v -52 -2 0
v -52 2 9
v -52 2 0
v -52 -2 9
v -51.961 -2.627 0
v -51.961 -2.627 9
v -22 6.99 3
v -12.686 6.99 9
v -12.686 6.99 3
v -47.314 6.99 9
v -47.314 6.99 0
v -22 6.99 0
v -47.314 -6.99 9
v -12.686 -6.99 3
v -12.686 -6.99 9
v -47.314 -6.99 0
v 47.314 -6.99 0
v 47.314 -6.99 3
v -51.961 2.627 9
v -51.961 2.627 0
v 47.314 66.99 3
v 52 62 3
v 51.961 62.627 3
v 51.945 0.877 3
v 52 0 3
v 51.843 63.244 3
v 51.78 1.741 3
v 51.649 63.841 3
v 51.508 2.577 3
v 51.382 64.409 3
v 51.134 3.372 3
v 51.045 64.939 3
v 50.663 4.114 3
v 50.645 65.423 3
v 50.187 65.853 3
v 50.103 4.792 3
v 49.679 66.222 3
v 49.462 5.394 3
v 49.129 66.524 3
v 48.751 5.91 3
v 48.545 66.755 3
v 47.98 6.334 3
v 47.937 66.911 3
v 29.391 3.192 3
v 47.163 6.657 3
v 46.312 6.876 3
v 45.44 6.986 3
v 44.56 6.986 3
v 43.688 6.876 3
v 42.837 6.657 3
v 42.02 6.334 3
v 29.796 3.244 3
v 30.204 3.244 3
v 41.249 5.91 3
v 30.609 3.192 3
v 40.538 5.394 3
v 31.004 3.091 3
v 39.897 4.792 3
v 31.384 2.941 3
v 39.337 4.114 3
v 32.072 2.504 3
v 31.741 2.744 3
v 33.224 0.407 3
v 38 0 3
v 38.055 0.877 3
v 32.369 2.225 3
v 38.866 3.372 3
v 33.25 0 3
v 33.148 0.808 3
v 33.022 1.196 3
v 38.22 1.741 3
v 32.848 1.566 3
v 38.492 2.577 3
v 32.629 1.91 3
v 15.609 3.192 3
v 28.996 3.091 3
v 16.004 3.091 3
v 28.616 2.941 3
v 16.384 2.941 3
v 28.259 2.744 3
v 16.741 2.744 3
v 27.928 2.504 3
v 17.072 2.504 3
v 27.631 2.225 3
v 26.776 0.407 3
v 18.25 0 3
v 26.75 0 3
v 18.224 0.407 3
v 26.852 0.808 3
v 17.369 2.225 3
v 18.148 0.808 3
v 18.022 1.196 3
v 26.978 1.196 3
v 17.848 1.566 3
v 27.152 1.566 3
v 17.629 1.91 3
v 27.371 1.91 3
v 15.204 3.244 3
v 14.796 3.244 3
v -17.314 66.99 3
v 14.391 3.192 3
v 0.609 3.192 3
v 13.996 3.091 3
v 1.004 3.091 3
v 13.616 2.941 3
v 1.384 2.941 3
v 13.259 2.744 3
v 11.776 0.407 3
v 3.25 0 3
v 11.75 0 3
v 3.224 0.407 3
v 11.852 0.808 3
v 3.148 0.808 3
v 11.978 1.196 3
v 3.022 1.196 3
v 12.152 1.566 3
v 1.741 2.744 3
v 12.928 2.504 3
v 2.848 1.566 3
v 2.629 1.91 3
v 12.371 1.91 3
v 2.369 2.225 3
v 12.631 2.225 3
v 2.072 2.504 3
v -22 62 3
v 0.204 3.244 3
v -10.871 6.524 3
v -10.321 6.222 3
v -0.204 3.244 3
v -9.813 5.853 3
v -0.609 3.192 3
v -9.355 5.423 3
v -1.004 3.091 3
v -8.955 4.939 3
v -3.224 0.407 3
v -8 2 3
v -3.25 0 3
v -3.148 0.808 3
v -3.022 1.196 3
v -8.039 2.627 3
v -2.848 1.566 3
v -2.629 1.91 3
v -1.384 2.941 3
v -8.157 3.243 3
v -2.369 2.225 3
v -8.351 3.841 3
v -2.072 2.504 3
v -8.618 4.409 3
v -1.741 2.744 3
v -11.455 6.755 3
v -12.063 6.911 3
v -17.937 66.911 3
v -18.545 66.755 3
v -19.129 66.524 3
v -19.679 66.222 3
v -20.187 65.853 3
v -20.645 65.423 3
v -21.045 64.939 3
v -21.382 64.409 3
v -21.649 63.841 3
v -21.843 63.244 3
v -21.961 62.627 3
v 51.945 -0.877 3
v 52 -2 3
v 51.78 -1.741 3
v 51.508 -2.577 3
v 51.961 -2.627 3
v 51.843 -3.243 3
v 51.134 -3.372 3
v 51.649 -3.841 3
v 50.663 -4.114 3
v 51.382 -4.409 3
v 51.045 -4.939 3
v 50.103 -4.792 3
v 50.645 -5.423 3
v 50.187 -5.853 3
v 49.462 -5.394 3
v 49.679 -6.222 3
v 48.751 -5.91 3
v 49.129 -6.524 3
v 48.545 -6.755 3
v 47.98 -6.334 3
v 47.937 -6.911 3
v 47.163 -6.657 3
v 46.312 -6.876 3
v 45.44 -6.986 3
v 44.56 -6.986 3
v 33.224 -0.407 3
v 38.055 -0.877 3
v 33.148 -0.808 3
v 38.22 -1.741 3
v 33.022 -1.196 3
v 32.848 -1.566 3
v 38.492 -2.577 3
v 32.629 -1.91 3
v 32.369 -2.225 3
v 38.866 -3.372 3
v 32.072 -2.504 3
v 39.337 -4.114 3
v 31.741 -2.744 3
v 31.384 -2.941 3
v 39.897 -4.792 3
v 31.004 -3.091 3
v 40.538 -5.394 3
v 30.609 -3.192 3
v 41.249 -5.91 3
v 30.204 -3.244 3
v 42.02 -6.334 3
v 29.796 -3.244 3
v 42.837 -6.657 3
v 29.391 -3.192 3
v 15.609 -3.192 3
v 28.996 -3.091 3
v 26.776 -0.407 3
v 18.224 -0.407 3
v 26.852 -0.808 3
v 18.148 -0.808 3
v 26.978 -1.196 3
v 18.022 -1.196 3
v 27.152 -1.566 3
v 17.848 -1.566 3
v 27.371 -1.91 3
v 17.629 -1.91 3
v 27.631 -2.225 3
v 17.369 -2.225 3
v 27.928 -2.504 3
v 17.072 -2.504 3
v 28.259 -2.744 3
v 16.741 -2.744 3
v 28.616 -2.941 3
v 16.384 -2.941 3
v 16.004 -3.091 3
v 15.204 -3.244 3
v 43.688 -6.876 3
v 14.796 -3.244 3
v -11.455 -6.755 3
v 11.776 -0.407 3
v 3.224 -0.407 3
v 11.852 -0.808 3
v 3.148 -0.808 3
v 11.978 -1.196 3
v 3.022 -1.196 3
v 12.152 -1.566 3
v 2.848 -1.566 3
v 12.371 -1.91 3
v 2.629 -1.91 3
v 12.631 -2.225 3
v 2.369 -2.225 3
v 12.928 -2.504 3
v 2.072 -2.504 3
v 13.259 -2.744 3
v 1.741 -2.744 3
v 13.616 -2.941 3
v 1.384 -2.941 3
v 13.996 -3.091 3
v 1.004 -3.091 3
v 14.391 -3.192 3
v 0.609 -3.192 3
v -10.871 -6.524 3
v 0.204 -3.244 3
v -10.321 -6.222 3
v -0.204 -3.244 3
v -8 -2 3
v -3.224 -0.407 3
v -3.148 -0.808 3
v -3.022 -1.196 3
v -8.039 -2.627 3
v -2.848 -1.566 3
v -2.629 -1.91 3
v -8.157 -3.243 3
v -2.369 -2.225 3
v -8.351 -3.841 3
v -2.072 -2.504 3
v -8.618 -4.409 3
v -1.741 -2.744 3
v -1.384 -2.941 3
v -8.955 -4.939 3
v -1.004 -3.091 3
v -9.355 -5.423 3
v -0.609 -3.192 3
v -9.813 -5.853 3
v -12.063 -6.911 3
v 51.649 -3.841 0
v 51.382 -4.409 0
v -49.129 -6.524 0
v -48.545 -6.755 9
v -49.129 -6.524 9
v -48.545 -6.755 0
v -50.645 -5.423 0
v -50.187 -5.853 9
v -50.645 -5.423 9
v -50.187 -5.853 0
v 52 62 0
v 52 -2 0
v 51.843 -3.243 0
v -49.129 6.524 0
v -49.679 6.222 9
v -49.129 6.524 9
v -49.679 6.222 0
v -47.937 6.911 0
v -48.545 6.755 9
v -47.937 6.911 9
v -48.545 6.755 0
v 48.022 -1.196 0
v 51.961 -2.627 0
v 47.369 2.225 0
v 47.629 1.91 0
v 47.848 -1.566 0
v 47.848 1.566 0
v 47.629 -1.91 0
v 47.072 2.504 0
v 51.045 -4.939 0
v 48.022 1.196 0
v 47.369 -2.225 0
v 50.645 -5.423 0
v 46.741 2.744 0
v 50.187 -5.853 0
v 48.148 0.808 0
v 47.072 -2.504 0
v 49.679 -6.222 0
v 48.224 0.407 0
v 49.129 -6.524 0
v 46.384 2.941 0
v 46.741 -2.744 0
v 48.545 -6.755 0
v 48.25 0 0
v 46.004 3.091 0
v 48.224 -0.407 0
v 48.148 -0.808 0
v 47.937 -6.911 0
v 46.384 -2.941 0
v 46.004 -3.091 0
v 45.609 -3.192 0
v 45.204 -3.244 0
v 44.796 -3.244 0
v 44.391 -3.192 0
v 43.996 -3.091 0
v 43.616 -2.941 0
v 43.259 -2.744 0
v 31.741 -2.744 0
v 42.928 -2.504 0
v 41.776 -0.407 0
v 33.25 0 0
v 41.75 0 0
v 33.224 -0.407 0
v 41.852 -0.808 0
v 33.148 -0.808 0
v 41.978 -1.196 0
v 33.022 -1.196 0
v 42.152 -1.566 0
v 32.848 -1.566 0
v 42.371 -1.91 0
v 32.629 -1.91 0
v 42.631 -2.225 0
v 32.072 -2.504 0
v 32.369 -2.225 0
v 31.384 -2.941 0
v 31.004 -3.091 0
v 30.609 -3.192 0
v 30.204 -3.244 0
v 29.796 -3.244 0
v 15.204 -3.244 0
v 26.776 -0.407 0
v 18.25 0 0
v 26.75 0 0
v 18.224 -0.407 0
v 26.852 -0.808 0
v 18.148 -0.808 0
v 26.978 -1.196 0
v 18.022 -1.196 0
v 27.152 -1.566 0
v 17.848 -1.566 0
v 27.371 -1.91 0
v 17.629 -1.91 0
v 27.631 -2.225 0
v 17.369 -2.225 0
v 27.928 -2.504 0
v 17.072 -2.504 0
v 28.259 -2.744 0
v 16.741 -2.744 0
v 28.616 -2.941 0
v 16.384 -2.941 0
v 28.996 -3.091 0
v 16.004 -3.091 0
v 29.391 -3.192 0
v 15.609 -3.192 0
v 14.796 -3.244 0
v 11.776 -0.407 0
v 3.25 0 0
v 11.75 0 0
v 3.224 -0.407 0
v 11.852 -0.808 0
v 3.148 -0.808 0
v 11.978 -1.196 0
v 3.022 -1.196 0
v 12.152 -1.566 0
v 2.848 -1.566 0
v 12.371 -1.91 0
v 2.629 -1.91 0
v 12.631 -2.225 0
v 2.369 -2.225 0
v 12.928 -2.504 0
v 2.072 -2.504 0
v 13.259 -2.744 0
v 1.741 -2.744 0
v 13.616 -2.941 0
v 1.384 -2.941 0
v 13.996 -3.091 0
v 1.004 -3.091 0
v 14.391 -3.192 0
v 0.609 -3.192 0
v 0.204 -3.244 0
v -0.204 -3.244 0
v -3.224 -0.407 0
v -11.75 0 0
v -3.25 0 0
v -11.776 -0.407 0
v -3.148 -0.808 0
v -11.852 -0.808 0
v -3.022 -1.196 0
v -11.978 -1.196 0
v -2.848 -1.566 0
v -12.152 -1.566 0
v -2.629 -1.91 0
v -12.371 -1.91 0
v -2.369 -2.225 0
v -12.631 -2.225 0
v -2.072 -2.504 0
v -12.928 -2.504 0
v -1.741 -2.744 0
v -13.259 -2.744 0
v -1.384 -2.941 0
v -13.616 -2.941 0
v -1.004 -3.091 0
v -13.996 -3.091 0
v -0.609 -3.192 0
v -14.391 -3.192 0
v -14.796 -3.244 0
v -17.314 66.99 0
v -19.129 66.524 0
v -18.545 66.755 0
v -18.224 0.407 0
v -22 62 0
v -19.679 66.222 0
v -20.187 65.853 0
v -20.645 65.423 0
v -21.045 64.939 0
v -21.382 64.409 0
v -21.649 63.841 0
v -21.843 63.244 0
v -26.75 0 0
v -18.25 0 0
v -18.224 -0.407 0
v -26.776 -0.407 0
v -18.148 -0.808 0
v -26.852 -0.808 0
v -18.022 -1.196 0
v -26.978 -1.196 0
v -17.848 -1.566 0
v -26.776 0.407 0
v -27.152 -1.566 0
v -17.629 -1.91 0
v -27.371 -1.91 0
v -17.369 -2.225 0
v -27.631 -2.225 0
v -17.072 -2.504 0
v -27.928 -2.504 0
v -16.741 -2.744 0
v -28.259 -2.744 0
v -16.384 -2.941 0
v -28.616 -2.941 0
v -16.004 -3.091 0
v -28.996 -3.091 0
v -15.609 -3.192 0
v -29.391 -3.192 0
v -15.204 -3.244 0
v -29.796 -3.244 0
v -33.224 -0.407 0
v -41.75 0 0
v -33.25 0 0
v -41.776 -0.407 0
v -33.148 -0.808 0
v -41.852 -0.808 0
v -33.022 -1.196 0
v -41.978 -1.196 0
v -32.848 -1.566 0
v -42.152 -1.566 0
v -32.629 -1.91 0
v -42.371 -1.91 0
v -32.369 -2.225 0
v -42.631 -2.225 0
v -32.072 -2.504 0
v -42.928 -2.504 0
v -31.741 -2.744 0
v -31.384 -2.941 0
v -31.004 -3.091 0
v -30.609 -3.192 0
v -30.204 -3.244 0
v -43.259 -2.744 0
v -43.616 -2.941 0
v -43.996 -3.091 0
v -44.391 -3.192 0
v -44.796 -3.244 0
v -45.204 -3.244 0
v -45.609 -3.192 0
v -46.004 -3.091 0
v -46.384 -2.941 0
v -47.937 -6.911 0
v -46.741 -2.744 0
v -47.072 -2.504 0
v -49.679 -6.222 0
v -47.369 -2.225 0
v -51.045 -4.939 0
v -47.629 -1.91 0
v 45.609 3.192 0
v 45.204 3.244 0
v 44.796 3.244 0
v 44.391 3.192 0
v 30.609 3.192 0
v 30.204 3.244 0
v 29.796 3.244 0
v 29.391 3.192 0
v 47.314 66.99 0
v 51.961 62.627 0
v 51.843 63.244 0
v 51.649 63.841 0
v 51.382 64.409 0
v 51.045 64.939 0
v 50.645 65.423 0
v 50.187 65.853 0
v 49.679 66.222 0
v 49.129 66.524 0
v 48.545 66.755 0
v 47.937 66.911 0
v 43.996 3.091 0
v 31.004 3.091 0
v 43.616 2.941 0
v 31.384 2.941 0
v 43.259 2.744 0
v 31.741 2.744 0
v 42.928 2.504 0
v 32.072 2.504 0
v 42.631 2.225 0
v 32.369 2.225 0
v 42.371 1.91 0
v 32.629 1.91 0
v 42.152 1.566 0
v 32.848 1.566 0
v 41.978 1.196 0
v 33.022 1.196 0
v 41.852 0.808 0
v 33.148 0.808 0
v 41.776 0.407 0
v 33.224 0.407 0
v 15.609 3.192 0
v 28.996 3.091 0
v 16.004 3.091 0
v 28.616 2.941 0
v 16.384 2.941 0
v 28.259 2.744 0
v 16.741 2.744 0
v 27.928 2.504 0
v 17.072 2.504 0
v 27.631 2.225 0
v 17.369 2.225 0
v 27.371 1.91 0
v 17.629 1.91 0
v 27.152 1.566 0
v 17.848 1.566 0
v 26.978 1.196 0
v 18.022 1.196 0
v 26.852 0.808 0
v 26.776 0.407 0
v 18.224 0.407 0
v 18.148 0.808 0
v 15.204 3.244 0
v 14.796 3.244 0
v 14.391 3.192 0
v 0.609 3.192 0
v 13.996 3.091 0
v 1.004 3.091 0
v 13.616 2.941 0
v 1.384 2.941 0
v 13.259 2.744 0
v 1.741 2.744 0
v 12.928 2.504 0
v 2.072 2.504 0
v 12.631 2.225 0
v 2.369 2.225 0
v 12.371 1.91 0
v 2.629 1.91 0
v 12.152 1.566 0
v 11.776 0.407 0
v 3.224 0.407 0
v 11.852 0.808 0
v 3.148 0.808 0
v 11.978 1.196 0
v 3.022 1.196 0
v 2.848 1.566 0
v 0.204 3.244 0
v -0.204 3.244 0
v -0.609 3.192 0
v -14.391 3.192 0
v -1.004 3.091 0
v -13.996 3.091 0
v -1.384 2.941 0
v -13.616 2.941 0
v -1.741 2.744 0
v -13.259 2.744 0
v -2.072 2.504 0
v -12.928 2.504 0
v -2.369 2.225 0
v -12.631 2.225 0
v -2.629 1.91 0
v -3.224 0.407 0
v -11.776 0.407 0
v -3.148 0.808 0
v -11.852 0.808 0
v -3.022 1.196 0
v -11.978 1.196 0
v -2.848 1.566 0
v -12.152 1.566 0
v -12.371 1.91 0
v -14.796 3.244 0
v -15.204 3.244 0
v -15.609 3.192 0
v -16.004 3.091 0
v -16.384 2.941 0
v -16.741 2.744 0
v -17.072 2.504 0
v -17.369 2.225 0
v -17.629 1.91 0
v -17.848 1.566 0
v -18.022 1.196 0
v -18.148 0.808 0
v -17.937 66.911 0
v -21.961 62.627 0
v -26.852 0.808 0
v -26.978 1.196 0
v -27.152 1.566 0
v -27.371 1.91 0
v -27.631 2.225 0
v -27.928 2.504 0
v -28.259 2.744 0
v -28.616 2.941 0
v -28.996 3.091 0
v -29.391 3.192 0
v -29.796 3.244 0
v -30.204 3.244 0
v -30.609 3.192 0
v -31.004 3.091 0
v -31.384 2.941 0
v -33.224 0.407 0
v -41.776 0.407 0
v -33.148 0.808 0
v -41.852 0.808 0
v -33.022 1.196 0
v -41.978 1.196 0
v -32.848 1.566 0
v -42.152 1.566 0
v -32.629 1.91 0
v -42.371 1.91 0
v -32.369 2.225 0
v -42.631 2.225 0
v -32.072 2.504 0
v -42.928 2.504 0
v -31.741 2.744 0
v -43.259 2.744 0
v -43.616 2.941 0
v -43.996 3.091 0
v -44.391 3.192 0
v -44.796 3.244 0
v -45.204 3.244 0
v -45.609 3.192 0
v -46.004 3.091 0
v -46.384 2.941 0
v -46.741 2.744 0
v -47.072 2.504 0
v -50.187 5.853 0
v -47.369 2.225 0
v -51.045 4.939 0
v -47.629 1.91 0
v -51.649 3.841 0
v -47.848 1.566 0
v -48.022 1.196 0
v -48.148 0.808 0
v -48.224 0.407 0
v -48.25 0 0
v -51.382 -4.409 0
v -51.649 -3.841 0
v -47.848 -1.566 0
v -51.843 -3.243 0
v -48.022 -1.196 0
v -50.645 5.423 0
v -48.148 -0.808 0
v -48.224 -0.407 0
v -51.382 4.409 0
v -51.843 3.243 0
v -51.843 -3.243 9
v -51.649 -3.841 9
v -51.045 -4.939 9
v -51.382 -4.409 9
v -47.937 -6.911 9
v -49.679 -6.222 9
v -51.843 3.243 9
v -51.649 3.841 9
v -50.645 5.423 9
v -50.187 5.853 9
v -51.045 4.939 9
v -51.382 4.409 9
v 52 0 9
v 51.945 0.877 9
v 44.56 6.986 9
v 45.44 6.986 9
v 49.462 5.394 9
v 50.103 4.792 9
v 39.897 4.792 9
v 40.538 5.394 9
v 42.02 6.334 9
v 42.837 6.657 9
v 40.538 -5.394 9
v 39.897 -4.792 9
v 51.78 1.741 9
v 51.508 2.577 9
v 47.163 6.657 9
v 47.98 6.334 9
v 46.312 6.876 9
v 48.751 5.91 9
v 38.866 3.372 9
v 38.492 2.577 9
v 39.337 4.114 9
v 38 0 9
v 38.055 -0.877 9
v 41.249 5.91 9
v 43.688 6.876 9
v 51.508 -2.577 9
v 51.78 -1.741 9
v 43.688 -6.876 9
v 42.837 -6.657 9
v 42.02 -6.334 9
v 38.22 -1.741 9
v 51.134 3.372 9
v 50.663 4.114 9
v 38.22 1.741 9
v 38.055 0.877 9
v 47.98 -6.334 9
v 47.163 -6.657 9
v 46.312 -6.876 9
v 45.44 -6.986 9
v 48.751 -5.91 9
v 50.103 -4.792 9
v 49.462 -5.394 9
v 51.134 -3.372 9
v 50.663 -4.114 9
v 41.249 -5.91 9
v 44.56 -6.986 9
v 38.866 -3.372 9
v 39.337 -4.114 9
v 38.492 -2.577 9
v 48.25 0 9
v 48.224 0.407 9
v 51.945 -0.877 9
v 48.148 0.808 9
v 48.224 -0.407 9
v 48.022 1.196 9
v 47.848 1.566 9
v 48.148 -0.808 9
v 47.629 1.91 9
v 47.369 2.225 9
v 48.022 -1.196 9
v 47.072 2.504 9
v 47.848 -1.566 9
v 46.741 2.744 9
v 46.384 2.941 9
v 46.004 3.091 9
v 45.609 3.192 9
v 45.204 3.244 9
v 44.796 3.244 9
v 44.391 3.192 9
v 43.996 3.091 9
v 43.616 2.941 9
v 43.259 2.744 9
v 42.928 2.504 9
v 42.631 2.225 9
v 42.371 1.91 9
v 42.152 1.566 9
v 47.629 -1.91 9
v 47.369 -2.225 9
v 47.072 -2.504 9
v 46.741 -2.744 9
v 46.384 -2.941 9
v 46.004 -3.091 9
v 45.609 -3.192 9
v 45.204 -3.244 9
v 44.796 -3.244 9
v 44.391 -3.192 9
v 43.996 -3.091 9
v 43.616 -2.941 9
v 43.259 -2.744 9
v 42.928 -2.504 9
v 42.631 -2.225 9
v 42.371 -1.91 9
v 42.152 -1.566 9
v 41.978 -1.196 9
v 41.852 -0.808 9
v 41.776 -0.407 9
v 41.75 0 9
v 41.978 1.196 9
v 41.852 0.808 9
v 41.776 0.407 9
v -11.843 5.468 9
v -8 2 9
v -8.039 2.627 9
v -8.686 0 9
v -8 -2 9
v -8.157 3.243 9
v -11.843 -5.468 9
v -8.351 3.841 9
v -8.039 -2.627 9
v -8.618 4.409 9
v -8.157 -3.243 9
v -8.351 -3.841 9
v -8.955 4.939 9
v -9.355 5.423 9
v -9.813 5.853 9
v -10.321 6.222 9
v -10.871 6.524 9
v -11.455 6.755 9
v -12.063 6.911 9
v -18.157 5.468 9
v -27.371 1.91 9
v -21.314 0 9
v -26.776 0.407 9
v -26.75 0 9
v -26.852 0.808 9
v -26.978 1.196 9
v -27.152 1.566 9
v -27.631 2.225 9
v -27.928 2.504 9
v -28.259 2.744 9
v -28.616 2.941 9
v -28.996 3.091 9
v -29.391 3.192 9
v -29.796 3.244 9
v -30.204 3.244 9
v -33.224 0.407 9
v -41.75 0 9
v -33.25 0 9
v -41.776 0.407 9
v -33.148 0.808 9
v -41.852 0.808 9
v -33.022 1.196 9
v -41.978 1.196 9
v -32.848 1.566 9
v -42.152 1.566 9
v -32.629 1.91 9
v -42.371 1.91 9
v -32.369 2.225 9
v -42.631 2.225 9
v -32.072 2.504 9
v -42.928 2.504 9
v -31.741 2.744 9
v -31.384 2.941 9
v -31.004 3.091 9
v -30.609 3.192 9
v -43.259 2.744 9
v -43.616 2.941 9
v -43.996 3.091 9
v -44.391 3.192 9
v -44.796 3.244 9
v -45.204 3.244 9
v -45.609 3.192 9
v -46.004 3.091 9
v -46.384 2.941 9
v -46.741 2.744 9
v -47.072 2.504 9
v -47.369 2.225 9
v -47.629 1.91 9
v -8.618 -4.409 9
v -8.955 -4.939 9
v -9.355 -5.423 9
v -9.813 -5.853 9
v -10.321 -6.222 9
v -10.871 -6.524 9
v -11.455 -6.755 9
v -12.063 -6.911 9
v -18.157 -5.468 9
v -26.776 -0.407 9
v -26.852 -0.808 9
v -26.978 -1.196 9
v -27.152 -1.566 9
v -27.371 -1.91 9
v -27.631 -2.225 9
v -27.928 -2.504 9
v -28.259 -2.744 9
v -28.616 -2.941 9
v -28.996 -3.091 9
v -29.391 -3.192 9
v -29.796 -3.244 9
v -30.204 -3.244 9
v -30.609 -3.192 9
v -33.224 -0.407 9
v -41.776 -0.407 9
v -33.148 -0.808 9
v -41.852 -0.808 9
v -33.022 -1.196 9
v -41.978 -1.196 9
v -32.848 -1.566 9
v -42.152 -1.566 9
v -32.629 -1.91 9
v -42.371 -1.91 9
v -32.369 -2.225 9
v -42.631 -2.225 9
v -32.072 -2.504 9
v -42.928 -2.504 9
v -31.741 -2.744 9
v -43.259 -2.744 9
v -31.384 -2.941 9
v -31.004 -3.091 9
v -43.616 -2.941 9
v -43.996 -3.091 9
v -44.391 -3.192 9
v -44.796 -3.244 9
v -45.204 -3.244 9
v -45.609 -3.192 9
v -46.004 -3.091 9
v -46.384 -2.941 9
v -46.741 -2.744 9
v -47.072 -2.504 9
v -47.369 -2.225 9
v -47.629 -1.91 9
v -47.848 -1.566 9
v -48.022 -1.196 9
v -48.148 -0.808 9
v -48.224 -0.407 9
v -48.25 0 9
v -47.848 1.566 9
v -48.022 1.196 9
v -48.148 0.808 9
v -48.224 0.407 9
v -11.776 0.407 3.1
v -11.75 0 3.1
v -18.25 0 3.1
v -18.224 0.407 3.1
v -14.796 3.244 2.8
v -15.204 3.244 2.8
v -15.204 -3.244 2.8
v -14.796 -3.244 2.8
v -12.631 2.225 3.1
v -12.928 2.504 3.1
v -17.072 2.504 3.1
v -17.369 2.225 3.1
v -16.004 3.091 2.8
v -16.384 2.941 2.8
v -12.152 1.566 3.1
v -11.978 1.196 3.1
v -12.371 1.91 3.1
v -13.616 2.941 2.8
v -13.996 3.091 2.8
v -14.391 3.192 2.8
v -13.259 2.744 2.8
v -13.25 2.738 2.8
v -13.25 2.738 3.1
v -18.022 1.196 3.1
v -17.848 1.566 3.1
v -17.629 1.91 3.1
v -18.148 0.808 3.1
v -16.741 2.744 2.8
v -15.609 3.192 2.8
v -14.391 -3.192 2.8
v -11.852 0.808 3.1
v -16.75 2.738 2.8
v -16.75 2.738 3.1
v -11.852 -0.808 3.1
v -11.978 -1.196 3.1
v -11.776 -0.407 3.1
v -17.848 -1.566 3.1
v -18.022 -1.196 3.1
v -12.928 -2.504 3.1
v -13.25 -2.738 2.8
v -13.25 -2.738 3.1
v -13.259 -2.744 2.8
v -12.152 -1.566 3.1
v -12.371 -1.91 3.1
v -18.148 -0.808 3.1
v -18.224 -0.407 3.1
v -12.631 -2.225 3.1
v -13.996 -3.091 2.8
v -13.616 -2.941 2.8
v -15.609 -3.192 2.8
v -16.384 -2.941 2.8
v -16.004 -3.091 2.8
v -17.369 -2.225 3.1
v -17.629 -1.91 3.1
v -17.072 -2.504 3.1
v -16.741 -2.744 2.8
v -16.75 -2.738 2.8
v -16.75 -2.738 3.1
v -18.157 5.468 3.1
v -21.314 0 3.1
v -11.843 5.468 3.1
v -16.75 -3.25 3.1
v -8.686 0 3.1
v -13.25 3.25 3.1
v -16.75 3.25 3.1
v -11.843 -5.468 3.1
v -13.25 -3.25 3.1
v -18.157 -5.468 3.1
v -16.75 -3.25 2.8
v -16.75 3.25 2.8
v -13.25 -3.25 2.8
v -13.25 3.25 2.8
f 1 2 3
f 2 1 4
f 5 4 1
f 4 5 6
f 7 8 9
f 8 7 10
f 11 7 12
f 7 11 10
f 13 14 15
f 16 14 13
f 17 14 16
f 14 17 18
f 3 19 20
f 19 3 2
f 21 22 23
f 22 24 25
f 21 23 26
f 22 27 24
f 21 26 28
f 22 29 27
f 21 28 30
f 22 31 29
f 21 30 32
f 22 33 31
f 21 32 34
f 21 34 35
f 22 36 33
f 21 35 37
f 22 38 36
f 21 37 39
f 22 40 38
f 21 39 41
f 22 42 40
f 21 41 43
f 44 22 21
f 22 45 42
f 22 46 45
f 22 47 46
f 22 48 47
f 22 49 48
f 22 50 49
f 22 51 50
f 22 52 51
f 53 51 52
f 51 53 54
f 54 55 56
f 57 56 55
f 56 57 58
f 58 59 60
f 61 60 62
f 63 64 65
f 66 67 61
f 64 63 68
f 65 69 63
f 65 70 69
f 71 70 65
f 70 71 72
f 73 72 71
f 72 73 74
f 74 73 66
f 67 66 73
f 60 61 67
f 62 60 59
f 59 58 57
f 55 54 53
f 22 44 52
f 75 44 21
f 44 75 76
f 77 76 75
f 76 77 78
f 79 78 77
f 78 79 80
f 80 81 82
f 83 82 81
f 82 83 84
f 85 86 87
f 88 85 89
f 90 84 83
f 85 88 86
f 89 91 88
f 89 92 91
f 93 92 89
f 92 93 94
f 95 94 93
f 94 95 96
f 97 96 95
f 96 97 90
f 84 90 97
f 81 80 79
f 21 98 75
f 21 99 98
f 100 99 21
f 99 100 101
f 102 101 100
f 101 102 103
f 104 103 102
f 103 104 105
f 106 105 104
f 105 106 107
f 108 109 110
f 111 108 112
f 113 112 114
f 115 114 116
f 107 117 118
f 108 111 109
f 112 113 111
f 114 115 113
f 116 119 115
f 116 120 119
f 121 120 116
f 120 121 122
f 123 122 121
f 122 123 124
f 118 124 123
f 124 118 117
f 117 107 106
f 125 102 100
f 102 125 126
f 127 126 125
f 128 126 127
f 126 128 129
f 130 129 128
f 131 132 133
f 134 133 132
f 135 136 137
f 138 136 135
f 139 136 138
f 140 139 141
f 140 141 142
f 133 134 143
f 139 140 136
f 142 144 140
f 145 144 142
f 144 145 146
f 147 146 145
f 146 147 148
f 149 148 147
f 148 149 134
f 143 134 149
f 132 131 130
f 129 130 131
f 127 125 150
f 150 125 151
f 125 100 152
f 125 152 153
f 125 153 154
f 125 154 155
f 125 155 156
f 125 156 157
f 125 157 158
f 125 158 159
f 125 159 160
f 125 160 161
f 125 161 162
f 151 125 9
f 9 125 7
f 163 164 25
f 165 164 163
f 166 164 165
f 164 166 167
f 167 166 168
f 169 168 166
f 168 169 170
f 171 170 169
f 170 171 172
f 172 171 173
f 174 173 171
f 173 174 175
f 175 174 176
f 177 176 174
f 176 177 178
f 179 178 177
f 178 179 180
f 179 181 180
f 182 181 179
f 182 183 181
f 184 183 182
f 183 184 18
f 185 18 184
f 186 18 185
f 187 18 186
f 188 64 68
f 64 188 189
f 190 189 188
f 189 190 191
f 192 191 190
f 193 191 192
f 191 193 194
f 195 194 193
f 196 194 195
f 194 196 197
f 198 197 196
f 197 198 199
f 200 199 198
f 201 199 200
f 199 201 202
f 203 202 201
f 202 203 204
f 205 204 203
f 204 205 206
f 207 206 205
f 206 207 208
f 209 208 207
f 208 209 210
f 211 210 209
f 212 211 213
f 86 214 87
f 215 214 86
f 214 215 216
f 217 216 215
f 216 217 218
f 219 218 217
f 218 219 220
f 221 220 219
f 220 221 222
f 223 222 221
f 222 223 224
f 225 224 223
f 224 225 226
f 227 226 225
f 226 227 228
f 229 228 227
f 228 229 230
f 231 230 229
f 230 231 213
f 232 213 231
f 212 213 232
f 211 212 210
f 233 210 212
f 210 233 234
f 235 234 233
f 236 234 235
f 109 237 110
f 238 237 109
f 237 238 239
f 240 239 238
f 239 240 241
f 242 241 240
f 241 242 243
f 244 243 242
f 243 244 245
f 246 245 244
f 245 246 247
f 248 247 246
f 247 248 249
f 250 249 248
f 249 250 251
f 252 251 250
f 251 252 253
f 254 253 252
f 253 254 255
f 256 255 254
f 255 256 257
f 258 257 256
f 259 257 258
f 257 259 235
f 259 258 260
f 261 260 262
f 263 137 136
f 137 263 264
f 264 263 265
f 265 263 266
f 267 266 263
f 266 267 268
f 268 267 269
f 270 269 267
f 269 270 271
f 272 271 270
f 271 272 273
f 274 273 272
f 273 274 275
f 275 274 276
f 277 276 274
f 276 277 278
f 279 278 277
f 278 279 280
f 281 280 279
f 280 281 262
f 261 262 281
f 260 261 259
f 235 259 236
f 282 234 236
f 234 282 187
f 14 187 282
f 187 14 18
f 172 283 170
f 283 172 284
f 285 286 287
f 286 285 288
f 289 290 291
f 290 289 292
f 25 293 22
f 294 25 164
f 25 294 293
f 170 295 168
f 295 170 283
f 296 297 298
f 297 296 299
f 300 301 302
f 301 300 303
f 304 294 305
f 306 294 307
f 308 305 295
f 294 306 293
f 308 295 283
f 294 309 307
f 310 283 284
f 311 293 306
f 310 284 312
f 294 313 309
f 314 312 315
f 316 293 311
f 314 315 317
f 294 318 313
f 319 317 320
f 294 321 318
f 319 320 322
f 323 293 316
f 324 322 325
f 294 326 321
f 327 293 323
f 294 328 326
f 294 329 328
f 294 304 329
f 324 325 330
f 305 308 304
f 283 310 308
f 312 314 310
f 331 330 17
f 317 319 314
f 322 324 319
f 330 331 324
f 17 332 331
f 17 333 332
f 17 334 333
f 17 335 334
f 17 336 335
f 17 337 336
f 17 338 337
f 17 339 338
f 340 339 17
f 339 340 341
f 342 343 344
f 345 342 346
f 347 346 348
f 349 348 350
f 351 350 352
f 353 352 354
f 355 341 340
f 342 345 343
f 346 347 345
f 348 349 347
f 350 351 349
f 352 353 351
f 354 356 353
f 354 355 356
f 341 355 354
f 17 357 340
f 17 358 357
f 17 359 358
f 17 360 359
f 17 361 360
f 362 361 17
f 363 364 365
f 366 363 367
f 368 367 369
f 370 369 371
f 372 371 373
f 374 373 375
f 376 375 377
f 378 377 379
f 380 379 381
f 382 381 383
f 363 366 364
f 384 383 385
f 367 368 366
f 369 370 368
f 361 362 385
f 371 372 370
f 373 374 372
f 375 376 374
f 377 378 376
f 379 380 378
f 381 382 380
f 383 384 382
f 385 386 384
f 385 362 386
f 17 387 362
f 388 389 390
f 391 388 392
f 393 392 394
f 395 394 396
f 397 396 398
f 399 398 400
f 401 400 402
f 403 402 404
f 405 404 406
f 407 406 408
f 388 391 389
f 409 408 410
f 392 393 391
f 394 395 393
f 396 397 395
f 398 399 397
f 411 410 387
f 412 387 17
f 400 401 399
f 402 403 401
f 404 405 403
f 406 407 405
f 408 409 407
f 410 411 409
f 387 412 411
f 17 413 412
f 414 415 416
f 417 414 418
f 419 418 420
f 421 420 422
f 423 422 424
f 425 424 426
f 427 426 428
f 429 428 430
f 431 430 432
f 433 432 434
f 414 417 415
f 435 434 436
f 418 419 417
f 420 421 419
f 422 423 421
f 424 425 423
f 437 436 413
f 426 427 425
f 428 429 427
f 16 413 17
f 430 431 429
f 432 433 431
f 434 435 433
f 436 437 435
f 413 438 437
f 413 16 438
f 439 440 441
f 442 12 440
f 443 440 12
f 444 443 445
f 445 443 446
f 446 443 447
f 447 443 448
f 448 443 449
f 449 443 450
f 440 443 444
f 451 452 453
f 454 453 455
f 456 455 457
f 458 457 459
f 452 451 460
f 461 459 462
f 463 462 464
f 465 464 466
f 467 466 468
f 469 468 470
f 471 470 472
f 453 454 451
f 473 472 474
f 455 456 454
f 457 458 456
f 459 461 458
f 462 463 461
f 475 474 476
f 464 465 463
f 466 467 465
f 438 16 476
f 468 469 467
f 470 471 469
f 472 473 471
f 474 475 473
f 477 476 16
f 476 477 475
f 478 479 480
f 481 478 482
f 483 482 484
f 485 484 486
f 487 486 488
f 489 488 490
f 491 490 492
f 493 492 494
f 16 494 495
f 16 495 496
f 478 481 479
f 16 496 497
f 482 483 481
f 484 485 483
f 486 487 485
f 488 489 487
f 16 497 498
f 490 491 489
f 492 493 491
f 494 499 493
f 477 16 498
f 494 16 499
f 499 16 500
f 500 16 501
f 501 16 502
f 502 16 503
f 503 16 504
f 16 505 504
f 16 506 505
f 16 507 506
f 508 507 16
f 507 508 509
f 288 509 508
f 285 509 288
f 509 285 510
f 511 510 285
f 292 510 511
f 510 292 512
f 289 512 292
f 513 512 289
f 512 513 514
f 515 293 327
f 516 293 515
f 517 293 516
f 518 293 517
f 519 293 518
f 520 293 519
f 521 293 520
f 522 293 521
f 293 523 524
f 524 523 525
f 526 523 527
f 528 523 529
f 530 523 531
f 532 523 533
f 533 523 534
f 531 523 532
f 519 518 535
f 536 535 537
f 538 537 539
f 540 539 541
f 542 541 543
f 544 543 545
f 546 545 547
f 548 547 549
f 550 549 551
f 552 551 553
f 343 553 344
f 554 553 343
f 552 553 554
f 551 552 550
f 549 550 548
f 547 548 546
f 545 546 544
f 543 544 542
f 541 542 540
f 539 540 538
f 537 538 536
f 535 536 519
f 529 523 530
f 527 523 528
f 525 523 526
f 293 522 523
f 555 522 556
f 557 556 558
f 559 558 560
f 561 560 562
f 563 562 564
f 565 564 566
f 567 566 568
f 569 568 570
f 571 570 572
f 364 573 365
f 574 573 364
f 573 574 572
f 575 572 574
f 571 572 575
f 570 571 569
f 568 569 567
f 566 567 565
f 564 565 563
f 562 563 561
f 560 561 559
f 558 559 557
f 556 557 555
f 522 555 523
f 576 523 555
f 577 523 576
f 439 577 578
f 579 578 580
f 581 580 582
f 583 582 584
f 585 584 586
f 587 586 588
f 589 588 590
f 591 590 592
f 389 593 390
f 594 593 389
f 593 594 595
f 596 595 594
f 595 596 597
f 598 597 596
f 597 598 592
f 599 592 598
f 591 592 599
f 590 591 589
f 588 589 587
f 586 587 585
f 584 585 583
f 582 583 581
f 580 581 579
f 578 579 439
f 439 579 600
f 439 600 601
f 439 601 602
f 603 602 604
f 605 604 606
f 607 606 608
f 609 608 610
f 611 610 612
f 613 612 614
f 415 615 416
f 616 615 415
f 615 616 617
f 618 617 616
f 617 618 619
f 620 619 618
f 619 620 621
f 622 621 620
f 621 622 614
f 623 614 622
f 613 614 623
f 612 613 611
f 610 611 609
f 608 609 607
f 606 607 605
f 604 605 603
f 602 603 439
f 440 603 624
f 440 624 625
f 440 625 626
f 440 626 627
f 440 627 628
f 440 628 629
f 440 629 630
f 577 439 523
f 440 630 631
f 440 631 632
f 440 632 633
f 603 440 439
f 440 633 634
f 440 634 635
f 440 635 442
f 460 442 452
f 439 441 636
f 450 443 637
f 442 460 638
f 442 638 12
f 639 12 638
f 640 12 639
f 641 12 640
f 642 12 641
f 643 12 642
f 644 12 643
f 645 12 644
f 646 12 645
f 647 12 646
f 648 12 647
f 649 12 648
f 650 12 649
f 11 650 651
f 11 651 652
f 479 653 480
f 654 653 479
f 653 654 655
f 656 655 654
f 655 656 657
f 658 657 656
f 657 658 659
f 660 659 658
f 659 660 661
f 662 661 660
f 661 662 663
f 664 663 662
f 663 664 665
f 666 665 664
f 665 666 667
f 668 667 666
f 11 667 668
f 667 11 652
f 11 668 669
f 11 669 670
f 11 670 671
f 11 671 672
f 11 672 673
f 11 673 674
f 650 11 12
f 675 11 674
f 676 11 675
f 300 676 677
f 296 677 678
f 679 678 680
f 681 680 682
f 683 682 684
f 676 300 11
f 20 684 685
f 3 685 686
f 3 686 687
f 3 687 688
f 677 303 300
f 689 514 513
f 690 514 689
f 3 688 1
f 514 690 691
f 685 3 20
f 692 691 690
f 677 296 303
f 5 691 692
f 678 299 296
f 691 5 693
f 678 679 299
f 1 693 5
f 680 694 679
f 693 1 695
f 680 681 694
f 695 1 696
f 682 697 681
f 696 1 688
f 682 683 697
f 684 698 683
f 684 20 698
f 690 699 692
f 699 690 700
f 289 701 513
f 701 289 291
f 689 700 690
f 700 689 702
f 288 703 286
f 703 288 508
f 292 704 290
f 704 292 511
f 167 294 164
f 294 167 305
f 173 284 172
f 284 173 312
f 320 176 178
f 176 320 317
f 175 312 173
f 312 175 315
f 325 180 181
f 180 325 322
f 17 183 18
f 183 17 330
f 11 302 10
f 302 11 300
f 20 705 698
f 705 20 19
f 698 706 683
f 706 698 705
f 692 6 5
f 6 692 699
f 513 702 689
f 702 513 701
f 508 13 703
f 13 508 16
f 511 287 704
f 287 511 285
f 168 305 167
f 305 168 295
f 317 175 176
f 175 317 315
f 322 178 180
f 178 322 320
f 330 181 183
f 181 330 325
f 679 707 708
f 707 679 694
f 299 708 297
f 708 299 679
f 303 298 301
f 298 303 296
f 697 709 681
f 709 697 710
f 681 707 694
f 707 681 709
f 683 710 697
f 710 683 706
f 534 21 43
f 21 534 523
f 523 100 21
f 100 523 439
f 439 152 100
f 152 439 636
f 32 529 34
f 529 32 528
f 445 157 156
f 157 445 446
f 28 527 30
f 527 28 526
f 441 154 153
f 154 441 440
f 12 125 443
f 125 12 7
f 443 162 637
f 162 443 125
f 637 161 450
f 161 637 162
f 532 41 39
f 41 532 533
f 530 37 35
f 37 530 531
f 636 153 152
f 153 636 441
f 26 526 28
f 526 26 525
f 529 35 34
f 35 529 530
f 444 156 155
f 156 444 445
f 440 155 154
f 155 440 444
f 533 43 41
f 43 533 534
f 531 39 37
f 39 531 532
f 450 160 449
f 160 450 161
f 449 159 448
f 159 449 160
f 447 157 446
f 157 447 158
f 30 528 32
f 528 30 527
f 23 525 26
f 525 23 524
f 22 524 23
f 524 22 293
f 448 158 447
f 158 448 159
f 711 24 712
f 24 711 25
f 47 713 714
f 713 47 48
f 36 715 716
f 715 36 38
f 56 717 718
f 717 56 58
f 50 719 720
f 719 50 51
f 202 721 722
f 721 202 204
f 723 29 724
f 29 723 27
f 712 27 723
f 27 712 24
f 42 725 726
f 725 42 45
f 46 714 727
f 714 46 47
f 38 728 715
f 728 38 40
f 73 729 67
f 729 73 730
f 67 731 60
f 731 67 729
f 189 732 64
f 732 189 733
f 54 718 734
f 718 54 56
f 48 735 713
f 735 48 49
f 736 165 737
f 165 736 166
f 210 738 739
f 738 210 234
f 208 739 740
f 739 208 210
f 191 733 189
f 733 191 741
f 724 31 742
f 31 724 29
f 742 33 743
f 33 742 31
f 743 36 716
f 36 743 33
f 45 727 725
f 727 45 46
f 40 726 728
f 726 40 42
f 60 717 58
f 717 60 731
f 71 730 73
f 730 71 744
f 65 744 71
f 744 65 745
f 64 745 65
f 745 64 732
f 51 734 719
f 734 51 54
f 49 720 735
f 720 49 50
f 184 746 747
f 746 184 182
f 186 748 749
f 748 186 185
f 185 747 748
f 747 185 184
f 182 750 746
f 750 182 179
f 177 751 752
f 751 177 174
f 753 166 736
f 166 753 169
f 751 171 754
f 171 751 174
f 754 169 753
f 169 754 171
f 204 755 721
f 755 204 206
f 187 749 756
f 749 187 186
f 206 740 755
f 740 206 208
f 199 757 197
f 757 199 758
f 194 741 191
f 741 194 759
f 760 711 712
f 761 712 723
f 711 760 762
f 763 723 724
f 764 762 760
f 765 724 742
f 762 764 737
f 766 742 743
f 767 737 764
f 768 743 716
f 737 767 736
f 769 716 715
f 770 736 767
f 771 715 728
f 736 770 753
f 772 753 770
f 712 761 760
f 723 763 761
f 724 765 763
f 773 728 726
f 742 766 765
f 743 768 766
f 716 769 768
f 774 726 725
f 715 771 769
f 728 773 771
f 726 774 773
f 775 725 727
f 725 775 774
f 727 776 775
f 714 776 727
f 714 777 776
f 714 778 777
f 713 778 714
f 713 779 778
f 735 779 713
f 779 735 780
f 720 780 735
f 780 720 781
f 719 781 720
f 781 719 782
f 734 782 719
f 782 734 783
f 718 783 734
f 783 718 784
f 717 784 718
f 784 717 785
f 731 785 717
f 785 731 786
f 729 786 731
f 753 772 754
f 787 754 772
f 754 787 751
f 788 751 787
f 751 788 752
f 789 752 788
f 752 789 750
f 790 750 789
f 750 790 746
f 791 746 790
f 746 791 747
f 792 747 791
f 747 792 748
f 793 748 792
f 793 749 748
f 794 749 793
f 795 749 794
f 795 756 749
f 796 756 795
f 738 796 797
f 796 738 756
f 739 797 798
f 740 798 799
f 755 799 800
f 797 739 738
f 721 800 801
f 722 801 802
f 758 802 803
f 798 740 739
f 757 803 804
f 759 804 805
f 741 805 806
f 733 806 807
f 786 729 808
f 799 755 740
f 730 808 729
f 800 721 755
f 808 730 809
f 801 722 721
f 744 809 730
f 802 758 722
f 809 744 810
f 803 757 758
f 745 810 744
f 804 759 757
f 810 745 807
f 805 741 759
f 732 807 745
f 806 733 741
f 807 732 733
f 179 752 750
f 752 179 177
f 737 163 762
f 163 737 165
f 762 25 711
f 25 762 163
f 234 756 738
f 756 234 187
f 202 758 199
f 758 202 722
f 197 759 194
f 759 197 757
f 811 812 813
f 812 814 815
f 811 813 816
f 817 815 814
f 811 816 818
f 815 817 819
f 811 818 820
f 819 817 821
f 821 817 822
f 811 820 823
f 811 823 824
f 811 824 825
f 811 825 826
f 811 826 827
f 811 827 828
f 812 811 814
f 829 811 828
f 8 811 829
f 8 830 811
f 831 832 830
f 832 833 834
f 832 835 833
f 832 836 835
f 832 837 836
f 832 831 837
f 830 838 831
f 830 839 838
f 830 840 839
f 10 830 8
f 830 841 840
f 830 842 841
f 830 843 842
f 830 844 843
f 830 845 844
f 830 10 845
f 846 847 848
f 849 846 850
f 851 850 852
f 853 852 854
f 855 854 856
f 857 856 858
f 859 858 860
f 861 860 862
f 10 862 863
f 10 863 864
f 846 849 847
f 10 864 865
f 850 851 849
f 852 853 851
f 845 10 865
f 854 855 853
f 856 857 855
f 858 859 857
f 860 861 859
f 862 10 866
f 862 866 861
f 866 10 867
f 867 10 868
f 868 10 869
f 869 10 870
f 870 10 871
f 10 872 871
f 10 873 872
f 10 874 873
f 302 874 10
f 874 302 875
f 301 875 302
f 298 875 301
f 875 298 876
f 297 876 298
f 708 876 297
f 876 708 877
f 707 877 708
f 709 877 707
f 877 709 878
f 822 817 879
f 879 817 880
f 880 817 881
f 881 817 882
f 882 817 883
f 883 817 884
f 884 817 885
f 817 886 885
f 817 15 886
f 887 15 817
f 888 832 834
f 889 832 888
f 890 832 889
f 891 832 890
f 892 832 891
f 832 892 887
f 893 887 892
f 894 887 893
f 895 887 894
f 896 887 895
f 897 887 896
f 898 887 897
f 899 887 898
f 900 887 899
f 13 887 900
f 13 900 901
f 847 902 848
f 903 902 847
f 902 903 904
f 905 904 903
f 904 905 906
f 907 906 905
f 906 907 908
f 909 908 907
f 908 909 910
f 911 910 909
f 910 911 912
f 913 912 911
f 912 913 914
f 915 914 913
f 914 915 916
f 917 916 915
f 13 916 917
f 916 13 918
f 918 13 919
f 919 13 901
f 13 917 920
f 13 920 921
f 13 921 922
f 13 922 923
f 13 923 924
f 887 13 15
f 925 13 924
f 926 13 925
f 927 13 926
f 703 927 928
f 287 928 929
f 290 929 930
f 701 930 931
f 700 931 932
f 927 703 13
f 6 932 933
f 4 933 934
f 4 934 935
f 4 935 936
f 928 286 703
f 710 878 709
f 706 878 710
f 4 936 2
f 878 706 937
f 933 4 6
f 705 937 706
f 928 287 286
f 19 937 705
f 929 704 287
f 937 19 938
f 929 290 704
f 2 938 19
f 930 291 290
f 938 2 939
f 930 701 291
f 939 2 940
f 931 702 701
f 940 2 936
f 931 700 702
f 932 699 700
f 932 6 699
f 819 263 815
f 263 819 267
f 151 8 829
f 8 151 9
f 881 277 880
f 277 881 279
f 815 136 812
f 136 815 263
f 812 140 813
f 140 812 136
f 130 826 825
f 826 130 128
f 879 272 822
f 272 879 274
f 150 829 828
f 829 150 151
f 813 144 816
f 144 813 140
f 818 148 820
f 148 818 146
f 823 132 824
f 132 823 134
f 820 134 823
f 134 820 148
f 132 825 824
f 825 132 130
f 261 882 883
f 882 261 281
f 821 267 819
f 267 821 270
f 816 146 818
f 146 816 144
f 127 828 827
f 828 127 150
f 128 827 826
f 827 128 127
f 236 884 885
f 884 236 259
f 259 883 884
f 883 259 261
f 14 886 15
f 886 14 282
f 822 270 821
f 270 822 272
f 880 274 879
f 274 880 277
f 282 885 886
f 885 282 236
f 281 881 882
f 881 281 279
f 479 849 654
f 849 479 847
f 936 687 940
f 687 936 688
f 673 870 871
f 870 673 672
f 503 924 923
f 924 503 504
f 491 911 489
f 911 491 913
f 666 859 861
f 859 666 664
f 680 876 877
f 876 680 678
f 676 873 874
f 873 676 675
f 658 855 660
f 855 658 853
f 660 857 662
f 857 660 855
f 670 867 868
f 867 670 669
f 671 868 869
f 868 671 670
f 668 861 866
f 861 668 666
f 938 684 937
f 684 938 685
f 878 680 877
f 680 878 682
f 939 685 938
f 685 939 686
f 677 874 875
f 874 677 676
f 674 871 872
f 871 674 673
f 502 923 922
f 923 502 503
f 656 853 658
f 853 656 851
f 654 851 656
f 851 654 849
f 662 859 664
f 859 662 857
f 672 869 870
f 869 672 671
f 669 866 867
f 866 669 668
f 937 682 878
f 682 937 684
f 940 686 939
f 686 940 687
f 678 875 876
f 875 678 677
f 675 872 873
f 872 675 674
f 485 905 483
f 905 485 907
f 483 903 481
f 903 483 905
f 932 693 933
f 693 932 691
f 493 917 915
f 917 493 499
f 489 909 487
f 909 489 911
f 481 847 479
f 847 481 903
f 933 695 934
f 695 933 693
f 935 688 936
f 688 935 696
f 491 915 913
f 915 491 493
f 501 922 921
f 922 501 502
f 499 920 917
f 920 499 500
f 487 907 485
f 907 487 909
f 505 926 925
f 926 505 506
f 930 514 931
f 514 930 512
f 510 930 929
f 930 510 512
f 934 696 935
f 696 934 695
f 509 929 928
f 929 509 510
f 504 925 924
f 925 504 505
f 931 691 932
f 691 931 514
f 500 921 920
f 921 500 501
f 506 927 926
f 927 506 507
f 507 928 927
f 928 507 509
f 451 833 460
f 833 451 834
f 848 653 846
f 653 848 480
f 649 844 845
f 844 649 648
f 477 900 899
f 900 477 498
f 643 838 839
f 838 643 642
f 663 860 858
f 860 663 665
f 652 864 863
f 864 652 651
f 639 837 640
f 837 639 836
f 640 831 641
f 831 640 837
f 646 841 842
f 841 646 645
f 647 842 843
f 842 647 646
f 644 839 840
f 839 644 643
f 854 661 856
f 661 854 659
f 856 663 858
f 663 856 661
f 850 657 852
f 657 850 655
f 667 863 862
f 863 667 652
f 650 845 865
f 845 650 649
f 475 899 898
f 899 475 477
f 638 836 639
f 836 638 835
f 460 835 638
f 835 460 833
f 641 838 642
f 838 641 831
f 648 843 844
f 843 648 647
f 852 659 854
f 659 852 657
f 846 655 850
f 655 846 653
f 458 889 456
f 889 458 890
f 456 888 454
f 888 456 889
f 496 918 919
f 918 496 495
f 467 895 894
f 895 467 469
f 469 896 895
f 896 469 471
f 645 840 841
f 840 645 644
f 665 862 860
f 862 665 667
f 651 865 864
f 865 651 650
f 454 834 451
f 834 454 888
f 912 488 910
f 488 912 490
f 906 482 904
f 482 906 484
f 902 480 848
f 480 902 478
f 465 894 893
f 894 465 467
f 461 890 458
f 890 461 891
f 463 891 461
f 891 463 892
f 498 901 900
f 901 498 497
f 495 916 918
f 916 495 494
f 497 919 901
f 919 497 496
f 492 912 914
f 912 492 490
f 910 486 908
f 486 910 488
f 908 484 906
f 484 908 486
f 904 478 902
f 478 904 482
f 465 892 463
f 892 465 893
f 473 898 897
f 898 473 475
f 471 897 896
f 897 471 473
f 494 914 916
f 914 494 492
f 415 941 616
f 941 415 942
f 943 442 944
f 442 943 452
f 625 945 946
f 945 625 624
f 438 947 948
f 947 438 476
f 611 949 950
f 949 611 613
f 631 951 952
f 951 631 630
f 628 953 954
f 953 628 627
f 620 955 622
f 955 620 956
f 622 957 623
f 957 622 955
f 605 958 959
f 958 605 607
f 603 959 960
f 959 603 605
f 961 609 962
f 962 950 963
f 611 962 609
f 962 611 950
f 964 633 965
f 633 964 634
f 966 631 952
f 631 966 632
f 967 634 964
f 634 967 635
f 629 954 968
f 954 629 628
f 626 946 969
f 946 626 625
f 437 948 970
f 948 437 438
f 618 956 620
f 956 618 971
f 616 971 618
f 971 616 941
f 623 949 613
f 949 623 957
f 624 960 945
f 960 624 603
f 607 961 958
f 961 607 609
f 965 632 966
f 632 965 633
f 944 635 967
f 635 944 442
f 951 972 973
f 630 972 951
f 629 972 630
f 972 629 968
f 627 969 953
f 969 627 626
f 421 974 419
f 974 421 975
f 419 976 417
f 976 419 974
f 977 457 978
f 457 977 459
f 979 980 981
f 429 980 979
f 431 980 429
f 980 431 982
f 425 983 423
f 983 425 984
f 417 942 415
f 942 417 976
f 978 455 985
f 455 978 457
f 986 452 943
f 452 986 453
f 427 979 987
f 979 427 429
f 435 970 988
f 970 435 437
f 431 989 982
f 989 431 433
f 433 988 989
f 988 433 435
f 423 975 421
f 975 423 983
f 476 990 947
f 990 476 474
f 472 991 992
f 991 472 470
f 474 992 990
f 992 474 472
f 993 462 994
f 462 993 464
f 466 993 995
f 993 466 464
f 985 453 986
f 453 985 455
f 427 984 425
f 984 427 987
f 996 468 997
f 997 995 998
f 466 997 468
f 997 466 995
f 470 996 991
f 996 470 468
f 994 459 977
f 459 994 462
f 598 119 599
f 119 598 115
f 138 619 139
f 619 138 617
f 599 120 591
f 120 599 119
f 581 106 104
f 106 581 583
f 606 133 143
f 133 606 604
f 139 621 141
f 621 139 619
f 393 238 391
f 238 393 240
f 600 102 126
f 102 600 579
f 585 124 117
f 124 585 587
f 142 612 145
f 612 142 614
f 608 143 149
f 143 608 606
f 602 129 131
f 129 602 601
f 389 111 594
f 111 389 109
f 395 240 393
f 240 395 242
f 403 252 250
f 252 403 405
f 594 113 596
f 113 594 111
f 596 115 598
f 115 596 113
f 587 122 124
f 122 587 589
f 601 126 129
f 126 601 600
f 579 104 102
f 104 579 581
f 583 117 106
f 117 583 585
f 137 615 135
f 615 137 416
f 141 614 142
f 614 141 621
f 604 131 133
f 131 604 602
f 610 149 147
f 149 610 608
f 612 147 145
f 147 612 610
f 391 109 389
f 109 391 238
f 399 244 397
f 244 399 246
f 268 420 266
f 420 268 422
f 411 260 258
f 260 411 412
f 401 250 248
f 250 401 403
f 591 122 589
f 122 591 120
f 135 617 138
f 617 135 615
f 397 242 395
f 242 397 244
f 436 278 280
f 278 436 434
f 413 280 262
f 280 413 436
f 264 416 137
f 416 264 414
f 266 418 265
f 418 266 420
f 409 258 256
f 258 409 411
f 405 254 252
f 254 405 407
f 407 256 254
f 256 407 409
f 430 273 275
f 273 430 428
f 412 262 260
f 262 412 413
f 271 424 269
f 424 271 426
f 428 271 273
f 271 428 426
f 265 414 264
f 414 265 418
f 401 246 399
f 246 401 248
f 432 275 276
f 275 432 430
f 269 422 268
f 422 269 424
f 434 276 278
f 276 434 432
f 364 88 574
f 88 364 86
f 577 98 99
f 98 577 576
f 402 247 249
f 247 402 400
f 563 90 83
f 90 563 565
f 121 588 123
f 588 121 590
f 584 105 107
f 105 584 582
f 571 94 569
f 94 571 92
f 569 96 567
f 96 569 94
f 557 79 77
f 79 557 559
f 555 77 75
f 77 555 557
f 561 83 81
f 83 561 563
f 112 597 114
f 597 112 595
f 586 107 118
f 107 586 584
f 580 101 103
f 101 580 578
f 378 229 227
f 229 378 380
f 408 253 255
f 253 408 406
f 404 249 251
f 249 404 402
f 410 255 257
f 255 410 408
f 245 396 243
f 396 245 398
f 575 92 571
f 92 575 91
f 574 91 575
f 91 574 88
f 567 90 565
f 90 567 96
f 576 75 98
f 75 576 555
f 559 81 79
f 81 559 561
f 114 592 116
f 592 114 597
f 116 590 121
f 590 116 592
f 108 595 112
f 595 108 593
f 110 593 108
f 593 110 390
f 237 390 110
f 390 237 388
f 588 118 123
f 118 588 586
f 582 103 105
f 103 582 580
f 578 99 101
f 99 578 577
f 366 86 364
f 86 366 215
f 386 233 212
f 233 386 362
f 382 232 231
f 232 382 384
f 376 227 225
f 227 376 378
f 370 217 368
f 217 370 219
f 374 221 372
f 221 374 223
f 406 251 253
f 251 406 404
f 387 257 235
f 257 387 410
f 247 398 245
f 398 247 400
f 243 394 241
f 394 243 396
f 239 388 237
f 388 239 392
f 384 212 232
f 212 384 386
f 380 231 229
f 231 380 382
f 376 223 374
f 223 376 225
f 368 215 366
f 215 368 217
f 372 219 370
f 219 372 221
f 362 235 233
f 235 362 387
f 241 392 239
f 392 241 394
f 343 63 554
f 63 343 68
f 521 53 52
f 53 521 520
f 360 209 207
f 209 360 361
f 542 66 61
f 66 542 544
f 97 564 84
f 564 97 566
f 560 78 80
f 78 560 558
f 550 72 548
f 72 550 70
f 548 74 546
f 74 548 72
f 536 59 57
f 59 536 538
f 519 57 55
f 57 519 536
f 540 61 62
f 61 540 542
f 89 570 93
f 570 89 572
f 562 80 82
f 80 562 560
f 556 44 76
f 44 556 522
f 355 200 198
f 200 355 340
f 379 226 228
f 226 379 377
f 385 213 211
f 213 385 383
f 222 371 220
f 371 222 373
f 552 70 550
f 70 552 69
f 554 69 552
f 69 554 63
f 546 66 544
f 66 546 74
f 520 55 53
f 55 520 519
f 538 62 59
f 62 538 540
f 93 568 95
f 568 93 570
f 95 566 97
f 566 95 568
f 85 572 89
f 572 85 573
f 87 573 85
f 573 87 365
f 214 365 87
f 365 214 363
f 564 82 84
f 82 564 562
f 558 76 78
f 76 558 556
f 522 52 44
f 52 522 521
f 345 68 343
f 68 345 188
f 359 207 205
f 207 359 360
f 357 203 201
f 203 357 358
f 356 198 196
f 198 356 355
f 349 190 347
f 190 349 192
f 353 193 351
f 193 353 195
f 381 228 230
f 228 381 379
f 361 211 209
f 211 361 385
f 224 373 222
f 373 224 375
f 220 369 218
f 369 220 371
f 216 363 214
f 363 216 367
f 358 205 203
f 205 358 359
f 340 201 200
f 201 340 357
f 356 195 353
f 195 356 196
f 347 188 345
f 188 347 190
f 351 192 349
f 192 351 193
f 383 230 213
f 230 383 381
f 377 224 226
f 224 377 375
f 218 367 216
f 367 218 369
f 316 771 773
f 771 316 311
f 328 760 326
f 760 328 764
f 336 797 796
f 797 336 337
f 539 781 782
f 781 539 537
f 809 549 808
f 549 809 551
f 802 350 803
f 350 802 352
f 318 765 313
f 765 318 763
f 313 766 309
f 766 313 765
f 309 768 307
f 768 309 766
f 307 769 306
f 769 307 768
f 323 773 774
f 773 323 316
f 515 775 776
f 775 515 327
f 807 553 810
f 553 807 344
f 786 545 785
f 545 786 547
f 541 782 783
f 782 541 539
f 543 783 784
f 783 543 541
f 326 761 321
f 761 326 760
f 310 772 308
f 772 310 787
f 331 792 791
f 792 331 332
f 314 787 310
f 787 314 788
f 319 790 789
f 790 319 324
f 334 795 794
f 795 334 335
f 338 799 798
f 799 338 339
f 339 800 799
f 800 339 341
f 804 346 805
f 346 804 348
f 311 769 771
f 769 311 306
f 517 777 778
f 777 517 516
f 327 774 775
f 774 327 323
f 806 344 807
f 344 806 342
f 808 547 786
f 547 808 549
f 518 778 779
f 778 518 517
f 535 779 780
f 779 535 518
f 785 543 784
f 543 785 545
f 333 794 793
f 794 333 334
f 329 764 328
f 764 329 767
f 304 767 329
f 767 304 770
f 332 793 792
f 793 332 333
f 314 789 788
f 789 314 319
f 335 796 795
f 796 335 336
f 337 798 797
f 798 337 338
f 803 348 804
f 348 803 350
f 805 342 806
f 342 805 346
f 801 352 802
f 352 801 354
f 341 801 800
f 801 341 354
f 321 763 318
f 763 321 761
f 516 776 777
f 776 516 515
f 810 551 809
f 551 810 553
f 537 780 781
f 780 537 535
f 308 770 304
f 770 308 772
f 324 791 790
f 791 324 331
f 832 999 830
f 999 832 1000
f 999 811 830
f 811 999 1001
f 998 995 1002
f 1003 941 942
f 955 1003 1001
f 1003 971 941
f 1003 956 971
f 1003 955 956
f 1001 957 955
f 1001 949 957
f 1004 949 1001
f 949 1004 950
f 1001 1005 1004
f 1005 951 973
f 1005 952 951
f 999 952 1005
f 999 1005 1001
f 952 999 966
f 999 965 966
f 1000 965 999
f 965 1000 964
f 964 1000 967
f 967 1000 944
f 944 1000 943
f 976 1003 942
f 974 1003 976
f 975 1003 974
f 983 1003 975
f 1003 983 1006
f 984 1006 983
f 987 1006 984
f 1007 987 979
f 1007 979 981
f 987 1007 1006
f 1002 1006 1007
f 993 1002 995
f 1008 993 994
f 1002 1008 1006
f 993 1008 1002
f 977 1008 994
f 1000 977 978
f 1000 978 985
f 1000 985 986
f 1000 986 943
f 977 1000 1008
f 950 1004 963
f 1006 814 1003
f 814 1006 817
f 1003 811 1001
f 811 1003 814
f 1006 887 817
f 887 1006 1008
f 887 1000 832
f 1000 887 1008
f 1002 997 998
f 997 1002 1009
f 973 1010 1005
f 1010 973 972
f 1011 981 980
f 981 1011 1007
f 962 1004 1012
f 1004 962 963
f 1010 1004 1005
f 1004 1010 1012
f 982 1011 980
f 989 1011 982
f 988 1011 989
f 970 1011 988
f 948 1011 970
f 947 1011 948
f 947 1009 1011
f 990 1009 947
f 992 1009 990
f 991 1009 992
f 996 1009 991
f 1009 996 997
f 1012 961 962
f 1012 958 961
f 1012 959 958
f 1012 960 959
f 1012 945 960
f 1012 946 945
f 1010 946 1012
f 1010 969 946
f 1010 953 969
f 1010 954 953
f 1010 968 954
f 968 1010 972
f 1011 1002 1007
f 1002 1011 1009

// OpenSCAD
$fn = 50;


difference() {
	union() {
		translate(v = [0, 0, 0]) {
			rotate(a = [0, 0, 0]) {
				hull() {
					translate(v = [-47.0000000000, 2.0000000000, 0]) {
						rotate(a = [0, 0, 0]) {
							translate(v = [0, 0, 0]) {
								rotate(a = [0, 0, 0]) {
									cylinder(h = 3, r = 5);
								}
							}
						}
					}
					translate(v = [47.0000000000, 2.0000000000, 0]) {
						rotate(a = [0, 0, 0]) {
							translate(v = [0, 0, 0]) {
								rotate(a = [0, 0, 0]) {
									cylinder(h = 3, r = 5);
								}
							}
						}
					}
					translate(v = [-47.0000000000, -2.0000000000, 0]) {
						rotate(a = [0, 0, 0]) {
							translate(v = [0, 0, 0]) {
								rotate(a = [0, 0, 0]) {
									cylinder(h = 3, r = 5);
								}
							}
						}
					}
					translate(v = [47.0000000000, -2.0000000000, 0]) {
						rotate(a = [0, 0, 0]) {
							translate(v = [0, 0, 0]) {
								rotate(a = [0, 0, 0]) {
									cylinder(h = 3, r = 5);
								}
							}
						}
					}
				}
			}
		}
		translate(v = [15, 30, 0]) {
			rotate(a = [0, 0, 0]) {
				hull() {
					translate(v = [-32.0000000000, 32.0000000000, 0]) {
						rotate(a = [0, 0, 0]) {
							translate(v = [0, 0, 0]) {
								rotate(a = [0, 0, 0]) {
									cylinder(h = 3, r = 5);
								}
							}
						}
					}
					translate(v = [32.0000000000, 32.0000000000, 0]) {
						rotate(a = [0, 0, 0]) {
							translate(v = [0, 0, 0]) {
								rotate(a = [0, 0, 0]) {
									cylinder(h = 3, r = 5);
								}
							}
						}
					}
					translate(v = [-32.0000000000, -32.0000000000, 0]) {
						rotate(a = [0, 0, 0]) {
							translate(v = [0, 0, 0]) {
								rotate(a = [0, 0, 0]) {
									cylinder(h = 3, r = 5);
								}
							}
						}
					}
					translate(v = [32.0000000000, -32.0000000000, 0]) {
						rotate(a = [0, 0, 0]) {
							translate(v = [0, 0, 0]) {
								rotate(a = [0, 0, 0]) {
									cylinder(h = 3, r = 5);
								}
							}
						}
					}
				}
			}
		}
		translate(v = [45.0000000000, 0, 0]) {
			rotate(a = [0, 0, 0]) {
				cylinder(h = 9, r = 7.0000000000);
			}
		}
		translate(v = [-30.0000000000, 0, 0]) {
			rotate(a = [0, 0, 0]) {
				hull() {
					translate(v = [-17.0000000000, 2.0000000000, 0]) {
						rotate(a = [0, 0, 0]) {
							translate(v = [0, 0, 0]) {
								rotate(a = [0, 0, 0]) {
									cylinder(h = 9, r = 5);
								}
							}
						}
					}
					translate(v = [17.0000000000, 2.0000000000, 0]) {
						rotate(a = [0, 0, 0]) {
							translate(v = [0, 0, 0]) {
								rotate(a = [0, 0, 0]) {
									cylinder(h = 9, r = 5);
								}
							}
						}
					}
					translate(v = [-17.0000000000, -2.0000000000, 0]) {
						rotate(a = [0, 0, 0]) {
							translate(v = [0, 0, 0]) {
								rotate(a = [0, 0, 0]) {
									cylinder(h = 9, r = 5);
								}
							}
						}
					}
					translate(v = [17.0000000000, -2.0000000000, 0]) {
						rotate(a = [0, 0, 0]) {
							translate(v = [0, 0, 0]) {
								rotate(a = [0, 0, 0]) {
									cylinder(h = 9, r = 5);
								}
							}
						}
					}
				}
			}
		}
	}
	union() {
		translate(v = [-45.0000000000, 0.0000000000, 0]) {
			rotate(a = [0, 0, 0]) {
				translate(v = [0, 0, -50]) {
					rotate(a = [0, 0, 0]) {
						cylinder(h = 100, r = 3.2500000000);
					}
				}
			}
		}
		translate(v = [-30.0000000000, 0.0000000000, 0]) {
			rotate(a = [0, 0, 0]) {
				translate(v = [0, 0, -50]) {
					rotate(a = [0, 0, 0]) {
						cylinder(h = 100, r = 3.2500000000);
					}
				}
			}
		}
		translate(v = [-15.0000000000, 0.0000000000, 0]) {
			rotate(a = [0, 0, 0]) {
				translate(v = [0, 0, -50]) {
					rotate(a = [0, 0, 0]) {
						cylinder(h = 100, r = 3.2500000000);
					}
				}
			}
		}
		translate(v = [0.0000000000, 0.0000000000, 0]) {
			rotate(a = [0, 0, 0]) {
				translate(v = [0, 0, -50]) {
					rotate(a = [0, 0, 0]) {
						cylinder(h = 100, r = 3.2500000000);
					}
				}
			}
		}
		translate(v = [15.0000000000, 0.0000000000, 0]) {
			rotate(a = [0, 0, 0]) {
				translate(v = [0, 0, -50]) {
					rotate(a = [0, 0, 0]) {
						cylinder(h = 100, r = 3.2500000000);
					}
				}
			}
		}
		translate(v = [30.0000000000, 0.0000000000, 0]) {
			rotate(a = [0, 0, 0]) {
				translate(v = [0, 0, -50]) {
					rotate(a = [0, 0, 0]) {
						cylinder(h = 100, r = 3.2500000000);
					}
				}
			}
		}
		translate(v = [45.0000000000, 0.0000000000, 0]) {
			rotate(a = [0, 0, 0]) {
				translate(v = [0, 0, -50]) {
					rotate(a = [0, 0, 0]) {
						cylinder(h = 100, r = 3.2500000000);
					}
				}
			}
		}
		translate(v = [-15.0000000000, 0, 3.1000000000]) {
			rotate(a = [0, 0, 0]) {
				#translate(v = [0, 0, 0]) {
					rotate(a = [0, 0, 0]) {
						linear_extrude(height = 5.9000000000) {
							polygon(points = [[6.3142500000, 0.0000000000], [3.1571250000, 5.4683009058], [-3.1571250000, 5.4683009058], [-6.3142500000, 0.0000000000], [-3.1571250000, -5.4683009058], [3.1571250000, -5.4683009058]]);
						}
					}
				}
			}
		}
		#translate(v = [-16.7500000000, -3.2500000000, 9.0000000000]) {
			rotate(a = [0, 0, 0]) {
				cube(size = [3.5000000000, 6.5000000000, 0.3000000000]);
			}
		}
		#translate(v = [-16.7500000000, -1.7500000000, 9.3000000000]) {
			rotate(a = [0, 0, 0]) {
				cube(size = [3.5000000000, 3.5000000000, 0.3000000000]);
			}
		}
		#translate(v = [-16.7500000000, -3.2500000000, 2.8000000000]) {
			rotate(a = [0, 0, 0]) {
				cube(size = [3.5000000000, 6.5000000000, 0.3000000000]);
			}
		}
		#translate(v = [-16.7500000000, -1.7500000000, 2.5000000000]) {
			rotate(a = [0, 0, 0]) {
				cube(size = [3.5000000000, 3.5000000000, 0.3000000000]);
			}
		}
	}
}
